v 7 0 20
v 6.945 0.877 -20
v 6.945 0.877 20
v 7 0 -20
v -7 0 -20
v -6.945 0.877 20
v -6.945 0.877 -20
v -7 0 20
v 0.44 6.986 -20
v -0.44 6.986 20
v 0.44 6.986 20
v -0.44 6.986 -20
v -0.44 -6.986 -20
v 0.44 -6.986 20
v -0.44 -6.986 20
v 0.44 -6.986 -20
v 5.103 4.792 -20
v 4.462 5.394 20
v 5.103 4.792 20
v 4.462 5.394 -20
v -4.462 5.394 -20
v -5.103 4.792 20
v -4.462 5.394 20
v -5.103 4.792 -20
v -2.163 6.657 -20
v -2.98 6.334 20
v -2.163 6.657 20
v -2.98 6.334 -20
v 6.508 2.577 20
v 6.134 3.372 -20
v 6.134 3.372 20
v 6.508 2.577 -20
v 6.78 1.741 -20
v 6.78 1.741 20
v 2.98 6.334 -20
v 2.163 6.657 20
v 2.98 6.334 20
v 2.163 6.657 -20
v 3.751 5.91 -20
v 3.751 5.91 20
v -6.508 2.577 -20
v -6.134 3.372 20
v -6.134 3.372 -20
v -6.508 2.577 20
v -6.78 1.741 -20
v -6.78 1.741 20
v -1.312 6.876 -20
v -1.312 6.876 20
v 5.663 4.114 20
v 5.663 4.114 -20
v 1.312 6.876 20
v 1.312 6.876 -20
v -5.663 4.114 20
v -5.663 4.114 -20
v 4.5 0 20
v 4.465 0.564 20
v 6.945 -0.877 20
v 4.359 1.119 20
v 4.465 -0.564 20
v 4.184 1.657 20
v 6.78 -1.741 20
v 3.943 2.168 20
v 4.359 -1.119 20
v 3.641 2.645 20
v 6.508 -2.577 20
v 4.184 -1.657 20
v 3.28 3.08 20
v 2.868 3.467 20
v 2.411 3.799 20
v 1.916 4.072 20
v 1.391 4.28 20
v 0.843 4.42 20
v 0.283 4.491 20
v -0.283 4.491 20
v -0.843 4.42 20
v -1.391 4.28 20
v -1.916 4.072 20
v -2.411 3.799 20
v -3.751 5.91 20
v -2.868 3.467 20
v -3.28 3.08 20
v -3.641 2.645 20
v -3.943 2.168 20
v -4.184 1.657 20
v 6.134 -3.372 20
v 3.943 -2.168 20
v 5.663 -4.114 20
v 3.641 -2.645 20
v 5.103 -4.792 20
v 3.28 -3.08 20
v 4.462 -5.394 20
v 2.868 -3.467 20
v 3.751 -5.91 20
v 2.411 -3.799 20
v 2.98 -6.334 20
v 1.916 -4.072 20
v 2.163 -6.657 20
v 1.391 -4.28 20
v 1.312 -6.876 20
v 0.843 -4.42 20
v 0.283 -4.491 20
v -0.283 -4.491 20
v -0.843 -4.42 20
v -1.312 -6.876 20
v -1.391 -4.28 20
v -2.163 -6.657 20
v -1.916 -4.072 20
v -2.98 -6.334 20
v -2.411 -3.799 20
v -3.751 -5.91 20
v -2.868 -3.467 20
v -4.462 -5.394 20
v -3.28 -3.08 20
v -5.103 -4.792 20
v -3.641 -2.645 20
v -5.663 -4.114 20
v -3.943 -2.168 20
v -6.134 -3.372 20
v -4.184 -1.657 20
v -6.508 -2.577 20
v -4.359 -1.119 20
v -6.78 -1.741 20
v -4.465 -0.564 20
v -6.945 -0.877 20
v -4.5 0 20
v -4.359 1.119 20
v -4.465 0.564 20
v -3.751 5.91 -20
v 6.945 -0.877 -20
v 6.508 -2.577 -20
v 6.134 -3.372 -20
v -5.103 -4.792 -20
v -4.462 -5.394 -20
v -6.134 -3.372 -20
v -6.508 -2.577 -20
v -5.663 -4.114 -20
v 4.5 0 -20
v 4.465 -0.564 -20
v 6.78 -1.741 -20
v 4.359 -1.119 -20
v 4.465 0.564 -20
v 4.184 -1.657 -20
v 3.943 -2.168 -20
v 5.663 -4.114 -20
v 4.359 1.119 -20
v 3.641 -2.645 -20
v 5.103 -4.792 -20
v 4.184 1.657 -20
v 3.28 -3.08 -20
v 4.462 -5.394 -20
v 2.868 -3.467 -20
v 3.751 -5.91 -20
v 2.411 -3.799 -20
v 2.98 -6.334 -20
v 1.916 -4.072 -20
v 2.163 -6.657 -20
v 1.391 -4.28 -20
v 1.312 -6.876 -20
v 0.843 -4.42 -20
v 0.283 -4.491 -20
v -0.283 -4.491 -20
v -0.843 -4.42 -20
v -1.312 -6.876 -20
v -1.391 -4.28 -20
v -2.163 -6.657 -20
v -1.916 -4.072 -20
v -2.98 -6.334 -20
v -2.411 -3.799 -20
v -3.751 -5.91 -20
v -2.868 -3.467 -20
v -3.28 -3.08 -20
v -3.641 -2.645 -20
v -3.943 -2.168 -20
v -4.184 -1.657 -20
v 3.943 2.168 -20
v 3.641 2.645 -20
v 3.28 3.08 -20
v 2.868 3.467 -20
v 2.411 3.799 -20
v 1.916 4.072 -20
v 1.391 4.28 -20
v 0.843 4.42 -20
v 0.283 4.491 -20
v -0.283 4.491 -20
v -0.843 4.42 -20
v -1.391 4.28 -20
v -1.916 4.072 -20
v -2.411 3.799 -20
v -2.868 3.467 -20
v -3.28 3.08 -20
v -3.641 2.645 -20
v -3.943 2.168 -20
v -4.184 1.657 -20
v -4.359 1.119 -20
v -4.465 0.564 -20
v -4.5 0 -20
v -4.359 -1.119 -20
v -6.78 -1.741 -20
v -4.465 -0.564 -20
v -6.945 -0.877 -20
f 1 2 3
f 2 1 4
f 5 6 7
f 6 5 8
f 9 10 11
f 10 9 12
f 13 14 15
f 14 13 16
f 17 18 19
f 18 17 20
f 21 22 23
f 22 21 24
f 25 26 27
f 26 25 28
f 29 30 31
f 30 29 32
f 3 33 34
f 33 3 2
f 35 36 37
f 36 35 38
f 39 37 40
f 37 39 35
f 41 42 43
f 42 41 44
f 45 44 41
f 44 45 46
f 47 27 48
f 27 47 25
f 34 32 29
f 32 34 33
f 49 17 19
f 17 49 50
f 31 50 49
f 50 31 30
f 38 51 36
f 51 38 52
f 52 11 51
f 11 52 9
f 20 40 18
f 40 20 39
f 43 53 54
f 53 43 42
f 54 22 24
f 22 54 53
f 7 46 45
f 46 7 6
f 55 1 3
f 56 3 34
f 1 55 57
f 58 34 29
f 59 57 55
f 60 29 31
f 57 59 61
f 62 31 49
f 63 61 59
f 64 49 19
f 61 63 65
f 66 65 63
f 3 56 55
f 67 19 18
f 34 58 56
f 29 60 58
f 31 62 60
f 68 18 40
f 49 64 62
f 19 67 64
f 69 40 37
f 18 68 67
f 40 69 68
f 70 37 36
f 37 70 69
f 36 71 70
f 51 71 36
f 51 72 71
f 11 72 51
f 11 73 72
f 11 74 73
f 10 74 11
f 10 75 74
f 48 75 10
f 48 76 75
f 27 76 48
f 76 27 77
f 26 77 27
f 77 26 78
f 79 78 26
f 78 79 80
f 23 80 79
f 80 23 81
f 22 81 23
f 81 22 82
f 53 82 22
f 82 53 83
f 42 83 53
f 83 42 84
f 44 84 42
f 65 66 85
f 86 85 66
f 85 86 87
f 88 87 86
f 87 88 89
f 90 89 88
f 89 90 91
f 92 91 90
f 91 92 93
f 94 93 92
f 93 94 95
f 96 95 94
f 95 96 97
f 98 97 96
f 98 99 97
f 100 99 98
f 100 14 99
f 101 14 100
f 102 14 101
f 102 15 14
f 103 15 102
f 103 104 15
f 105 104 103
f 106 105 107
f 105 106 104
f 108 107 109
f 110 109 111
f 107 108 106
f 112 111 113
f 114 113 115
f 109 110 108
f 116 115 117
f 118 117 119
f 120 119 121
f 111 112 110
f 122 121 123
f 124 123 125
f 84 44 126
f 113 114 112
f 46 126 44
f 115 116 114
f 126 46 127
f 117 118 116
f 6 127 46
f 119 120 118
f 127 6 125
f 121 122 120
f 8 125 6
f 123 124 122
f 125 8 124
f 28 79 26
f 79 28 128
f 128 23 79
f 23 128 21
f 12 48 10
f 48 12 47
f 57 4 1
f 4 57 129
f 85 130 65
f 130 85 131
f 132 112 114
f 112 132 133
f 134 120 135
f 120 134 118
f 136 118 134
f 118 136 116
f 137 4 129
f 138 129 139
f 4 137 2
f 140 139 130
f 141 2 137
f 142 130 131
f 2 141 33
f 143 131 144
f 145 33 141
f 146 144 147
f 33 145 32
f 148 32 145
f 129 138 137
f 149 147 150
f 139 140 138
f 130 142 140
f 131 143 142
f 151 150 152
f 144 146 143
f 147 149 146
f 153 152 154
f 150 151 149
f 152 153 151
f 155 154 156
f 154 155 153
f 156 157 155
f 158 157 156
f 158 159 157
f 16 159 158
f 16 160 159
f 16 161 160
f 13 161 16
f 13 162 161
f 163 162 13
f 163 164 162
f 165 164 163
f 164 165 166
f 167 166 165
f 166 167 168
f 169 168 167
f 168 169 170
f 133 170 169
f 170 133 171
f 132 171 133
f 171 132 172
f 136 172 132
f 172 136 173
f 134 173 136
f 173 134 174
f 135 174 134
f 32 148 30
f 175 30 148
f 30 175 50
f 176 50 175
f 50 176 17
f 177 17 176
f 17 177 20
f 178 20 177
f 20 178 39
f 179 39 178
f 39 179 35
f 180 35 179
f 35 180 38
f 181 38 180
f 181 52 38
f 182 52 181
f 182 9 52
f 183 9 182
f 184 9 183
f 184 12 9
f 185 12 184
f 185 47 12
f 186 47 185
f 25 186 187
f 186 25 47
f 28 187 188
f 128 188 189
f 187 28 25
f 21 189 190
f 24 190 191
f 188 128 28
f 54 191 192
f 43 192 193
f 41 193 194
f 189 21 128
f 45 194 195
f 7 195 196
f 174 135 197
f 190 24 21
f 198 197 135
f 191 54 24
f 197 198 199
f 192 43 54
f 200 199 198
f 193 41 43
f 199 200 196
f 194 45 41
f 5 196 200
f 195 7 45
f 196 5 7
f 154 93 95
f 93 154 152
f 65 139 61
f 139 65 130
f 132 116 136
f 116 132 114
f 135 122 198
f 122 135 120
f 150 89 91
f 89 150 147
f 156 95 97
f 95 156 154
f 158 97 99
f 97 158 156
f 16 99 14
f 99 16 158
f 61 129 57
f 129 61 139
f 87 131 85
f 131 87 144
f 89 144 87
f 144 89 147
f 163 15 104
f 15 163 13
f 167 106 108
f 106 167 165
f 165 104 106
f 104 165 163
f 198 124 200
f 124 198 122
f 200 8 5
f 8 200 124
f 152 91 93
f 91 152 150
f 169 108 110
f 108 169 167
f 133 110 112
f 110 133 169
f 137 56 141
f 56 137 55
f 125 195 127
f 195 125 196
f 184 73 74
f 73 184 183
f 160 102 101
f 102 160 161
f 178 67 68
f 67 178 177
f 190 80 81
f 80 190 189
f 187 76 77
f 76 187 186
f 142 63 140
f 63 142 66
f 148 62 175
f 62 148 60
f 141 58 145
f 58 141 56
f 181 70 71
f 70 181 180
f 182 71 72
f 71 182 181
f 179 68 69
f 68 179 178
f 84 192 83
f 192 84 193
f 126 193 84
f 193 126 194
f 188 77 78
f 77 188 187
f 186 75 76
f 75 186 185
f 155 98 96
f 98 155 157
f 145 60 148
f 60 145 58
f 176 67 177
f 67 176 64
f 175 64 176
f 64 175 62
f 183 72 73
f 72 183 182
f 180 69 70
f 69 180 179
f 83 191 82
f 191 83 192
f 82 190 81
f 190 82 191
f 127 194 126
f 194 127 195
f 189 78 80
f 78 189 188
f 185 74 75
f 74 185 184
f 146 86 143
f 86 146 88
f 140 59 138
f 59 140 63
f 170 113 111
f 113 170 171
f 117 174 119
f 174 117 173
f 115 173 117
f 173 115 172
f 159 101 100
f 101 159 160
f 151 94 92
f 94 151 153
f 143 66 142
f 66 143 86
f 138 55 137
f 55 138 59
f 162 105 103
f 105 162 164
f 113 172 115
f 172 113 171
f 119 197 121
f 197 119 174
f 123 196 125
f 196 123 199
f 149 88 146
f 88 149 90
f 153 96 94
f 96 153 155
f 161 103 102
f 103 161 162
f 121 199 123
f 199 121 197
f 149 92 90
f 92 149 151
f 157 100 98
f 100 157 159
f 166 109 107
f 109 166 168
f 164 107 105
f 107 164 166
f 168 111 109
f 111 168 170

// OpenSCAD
$fn = 50;


difference() {
	union() {
		translate(v = [0, 0, -20.0000000000]) {
			cylinder(h = 40, r = 7.0000000000);
		}
	}
	union() {
		translate(v = [0, 0, -100.0000000000]) {
			cylinder(h = 200, r = 4.5000000000);
		}
	}
}
